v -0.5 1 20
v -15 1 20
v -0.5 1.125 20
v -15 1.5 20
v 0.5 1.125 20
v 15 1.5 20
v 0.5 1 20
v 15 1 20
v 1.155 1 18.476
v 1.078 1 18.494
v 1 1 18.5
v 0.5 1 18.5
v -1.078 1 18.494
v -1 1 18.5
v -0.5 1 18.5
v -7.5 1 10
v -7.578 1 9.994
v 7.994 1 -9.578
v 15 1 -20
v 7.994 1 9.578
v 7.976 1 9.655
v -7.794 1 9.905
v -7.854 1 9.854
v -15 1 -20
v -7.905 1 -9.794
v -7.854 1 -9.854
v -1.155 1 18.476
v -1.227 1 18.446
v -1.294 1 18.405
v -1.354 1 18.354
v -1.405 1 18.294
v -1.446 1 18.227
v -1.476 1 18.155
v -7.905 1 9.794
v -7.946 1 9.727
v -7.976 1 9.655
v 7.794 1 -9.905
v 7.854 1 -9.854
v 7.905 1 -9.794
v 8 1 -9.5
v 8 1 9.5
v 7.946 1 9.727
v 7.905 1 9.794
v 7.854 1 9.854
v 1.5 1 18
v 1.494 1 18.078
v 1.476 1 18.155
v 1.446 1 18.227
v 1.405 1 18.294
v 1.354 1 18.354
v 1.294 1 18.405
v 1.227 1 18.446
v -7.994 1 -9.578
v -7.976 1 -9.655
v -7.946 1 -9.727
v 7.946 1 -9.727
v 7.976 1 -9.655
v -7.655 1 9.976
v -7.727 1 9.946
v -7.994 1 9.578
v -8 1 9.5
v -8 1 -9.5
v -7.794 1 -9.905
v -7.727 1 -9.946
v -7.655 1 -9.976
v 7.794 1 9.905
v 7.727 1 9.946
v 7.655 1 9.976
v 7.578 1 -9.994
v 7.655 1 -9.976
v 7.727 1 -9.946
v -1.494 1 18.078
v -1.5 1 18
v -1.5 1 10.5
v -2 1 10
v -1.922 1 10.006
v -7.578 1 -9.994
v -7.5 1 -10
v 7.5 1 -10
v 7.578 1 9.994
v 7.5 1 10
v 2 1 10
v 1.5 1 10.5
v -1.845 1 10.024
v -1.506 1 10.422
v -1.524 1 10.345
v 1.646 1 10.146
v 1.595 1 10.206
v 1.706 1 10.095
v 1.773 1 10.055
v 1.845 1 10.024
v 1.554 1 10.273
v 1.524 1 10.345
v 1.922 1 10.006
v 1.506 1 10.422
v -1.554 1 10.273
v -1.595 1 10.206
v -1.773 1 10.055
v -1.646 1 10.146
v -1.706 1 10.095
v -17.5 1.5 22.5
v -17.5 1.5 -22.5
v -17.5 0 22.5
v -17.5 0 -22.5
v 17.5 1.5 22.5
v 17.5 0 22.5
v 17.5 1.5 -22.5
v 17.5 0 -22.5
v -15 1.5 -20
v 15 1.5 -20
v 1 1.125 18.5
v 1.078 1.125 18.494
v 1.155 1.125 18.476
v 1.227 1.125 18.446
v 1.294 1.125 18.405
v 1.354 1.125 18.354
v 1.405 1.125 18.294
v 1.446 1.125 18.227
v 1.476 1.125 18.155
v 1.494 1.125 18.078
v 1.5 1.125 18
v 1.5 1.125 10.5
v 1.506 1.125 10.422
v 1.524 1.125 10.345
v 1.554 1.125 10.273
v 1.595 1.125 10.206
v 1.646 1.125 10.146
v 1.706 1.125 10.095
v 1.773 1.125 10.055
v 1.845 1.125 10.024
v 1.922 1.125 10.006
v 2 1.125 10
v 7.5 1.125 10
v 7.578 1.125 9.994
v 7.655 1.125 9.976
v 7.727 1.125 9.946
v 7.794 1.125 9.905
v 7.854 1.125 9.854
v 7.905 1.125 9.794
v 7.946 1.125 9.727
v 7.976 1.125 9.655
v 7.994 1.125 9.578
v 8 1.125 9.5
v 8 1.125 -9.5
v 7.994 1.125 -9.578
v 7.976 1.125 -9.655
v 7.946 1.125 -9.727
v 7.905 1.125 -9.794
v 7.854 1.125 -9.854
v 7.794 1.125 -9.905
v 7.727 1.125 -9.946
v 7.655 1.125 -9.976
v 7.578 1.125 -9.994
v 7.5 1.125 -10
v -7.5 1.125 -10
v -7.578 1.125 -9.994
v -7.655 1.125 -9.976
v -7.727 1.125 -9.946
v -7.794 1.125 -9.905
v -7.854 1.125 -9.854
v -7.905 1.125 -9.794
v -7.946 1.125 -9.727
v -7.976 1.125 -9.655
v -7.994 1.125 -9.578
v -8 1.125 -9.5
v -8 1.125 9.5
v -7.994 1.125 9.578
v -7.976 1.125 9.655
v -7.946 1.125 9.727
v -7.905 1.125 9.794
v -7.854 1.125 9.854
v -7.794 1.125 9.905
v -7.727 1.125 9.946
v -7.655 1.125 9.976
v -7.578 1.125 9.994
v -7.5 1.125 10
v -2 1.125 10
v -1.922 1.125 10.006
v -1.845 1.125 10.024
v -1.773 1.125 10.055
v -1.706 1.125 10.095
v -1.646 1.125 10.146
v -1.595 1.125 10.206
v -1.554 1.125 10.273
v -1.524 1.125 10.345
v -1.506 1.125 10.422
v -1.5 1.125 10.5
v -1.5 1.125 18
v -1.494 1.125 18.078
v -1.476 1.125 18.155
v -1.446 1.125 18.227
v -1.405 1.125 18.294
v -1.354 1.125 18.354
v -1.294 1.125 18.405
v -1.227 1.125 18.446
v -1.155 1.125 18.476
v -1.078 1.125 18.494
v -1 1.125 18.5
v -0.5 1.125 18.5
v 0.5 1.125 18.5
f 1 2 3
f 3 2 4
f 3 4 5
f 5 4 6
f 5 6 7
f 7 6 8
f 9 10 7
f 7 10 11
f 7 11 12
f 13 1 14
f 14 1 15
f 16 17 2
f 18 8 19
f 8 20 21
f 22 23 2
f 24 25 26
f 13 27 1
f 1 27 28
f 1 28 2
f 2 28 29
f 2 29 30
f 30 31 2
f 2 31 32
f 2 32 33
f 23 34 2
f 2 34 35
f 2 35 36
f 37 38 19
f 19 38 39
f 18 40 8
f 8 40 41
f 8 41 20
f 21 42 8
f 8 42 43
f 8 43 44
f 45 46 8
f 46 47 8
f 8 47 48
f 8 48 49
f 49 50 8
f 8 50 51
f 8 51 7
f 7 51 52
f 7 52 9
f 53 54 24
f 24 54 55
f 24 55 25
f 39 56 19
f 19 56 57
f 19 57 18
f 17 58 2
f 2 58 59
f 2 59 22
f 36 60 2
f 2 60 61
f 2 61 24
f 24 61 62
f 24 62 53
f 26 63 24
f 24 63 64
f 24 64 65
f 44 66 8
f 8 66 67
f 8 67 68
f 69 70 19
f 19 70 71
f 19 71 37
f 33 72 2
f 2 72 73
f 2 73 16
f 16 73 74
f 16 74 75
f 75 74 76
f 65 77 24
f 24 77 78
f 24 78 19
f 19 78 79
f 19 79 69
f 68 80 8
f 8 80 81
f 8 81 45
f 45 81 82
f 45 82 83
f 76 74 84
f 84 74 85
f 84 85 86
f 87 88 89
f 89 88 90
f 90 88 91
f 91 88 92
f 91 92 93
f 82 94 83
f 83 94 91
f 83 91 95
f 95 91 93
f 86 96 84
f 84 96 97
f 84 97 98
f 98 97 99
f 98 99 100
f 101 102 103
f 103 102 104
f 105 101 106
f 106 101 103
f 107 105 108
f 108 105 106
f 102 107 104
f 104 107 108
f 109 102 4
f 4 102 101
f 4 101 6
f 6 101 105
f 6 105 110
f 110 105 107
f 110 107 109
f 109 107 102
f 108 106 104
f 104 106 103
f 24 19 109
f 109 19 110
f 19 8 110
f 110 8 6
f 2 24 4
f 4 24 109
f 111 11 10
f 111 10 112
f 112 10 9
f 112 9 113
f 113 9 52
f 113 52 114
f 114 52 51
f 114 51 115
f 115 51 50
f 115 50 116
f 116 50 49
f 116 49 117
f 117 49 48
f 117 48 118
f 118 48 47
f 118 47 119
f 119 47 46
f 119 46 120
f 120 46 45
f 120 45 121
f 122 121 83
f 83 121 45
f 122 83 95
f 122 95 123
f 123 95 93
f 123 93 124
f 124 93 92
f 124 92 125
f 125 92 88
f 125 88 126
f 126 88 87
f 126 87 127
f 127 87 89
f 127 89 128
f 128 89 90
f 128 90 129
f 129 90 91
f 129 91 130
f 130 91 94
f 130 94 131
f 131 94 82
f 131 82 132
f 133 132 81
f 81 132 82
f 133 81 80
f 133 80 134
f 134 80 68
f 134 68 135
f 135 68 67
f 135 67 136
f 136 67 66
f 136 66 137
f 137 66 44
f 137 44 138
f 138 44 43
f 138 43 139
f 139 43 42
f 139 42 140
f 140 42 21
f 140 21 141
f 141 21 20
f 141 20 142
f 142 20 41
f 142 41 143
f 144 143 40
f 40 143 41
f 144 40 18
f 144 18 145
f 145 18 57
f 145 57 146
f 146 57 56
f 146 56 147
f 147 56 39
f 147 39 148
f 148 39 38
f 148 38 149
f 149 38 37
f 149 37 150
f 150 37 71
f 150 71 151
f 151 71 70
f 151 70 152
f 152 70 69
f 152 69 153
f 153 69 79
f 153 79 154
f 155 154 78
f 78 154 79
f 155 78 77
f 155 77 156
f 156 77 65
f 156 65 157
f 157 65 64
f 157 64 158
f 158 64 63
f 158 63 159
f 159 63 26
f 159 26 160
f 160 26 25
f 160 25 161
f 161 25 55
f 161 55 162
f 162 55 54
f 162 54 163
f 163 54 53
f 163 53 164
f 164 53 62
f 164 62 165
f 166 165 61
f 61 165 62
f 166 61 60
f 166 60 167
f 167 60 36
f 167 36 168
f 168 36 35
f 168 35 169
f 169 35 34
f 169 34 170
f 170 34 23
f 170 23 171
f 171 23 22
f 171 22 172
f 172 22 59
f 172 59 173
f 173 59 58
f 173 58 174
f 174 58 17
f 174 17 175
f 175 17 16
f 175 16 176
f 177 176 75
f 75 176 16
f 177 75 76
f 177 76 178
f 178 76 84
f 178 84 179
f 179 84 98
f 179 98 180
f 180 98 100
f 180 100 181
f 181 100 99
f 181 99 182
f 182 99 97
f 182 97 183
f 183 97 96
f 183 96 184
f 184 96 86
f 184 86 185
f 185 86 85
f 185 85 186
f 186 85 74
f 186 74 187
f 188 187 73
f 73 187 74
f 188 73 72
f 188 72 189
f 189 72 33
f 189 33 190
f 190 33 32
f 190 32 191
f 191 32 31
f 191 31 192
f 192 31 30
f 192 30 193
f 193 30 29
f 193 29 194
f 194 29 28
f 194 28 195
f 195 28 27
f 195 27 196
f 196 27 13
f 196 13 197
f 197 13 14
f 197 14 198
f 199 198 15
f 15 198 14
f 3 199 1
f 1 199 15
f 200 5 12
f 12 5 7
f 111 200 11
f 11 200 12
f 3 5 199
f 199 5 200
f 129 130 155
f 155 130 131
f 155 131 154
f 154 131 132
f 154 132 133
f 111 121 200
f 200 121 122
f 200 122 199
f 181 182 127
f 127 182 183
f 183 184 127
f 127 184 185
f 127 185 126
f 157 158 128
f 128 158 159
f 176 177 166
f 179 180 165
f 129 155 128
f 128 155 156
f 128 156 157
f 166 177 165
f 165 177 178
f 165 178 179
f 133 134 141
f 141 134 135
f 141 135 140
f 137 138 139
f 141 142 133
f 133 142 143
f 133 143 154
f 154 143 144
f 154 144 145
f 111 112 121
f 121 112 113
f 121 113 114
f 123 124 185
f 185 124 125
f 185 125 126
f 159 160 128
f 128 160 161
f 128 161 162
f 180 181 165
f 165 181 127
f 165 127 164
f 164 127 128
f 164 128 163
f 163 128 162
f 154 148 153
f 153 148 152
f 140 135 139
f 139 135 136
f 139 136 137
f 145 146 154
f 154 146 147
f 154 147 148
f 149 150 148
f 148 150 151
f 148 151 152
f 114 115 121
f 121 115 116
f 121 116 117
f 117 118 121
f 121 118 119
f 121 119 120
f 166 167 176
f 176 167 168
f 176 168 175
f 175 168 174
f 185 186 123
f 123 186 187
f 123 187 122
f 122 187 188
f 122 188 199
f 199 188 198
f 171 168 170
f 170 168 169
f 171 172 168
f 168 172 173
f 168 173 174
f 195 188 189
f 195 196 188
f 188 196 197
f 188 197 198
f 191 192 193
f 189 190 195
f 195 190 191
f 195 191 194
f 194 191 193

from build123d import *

# Parameters (mm, degrees)
SKETCH1_W           = 35
SKETCH1_H           = 45
BOSS_EXTRUDE1_DEPTH = 1.5
SKETCH2_W           = 30
SKETCH2_H           = 40
CUT_EXTRUDE1_DEPTH  = 0.5
BOSS_EXTRUDE2_DEPTH = 0.125


with BuildPart() as part:
    # Sketch1 → Boss-Extrude1 (new body)
    with BuildSketch(Plane(origin=(0, 0, 0), x_dir=(1, 0, 0), z_dir=(0, 1, 0))):
        Rectangle(SKETCH1_W, SKETCH1_H)
    extrude(amount=BOSS_EXTRUDE1_DEPTH)

    # Sketch2 → Cut-Extrude1 (cut)
    with BuildSketch(Plane(origin=(0, 1.5, 0), x_dir=(1, 0, 0), z_dir=(0, 1, 0))):
        Rectangle(SKETCH2_W, SKETCH2_H)
    extrude(amount=-CUT_EXTRUDE1_DEPTH, mode=Mode.SUBTRACT)

    # Sketch3 → Boss-Extrude2 (add)
    with BuildSketch(Plane(origin=(0, 1, 0), x_dir=(1, 0, 0), z_dir=(0, 1, 0))):
        with BuildLine():
            Line((-1.5, -10.5), (-1.5, -18))
            ThreePointArc((-1.5, -18), (-1.353553391, -18.353553391), (-1, -18.5))
            Line((-1, -18.5), (-0.5, -18.5))
            Line((-0.5, -18.5), (-0.5, -20))
            Line((-0.5, -20), (0.5, -20))
            Line((0.5, -20), (0.5, -18.5))
            Line((0.5, -18.5), (1, -18.5))
            ThreePointArc((1, -18.5), (1.353553391, -18.353553391), (1.5, -18))
            Line((1.5, -18), (1.5, -10.5))
            ThreePointArc((1.5, -10.5), (1.646446609, -10.146446609), (2, -10))
            Line((2, -10), (7.5, -10))
            ThreePointArc((7.5, -10), (7.853553391, -9.853553391), (8, -9.5))
            Line((8, -9.5), (8, 9.5))
            ThreePointArc((8, 9.5), (7.853553391, 9.853553391), (7.5, 10))
            Line((7.5, 10), (-7.5, 10))
            ThreePointArc((-7.5, 10), (-7.853553391, 9.853553391), (-8, 9.5))
            Line((-8, 9.5), (-8, -9.5))
            ThreePointArc((-8, -9.5), (-7.853553391, -9.853553391), (-7.5, -10))
            Line((-7.5, -10), (-2, -10))
            ThreePointArc((-2, -10), (-1.646446609, -10.146446609), (-1.5, -10.5))
        make_face()
    extrude(amount=BOSS_EXTRUDE2_DEPTH)


solid = part.part
